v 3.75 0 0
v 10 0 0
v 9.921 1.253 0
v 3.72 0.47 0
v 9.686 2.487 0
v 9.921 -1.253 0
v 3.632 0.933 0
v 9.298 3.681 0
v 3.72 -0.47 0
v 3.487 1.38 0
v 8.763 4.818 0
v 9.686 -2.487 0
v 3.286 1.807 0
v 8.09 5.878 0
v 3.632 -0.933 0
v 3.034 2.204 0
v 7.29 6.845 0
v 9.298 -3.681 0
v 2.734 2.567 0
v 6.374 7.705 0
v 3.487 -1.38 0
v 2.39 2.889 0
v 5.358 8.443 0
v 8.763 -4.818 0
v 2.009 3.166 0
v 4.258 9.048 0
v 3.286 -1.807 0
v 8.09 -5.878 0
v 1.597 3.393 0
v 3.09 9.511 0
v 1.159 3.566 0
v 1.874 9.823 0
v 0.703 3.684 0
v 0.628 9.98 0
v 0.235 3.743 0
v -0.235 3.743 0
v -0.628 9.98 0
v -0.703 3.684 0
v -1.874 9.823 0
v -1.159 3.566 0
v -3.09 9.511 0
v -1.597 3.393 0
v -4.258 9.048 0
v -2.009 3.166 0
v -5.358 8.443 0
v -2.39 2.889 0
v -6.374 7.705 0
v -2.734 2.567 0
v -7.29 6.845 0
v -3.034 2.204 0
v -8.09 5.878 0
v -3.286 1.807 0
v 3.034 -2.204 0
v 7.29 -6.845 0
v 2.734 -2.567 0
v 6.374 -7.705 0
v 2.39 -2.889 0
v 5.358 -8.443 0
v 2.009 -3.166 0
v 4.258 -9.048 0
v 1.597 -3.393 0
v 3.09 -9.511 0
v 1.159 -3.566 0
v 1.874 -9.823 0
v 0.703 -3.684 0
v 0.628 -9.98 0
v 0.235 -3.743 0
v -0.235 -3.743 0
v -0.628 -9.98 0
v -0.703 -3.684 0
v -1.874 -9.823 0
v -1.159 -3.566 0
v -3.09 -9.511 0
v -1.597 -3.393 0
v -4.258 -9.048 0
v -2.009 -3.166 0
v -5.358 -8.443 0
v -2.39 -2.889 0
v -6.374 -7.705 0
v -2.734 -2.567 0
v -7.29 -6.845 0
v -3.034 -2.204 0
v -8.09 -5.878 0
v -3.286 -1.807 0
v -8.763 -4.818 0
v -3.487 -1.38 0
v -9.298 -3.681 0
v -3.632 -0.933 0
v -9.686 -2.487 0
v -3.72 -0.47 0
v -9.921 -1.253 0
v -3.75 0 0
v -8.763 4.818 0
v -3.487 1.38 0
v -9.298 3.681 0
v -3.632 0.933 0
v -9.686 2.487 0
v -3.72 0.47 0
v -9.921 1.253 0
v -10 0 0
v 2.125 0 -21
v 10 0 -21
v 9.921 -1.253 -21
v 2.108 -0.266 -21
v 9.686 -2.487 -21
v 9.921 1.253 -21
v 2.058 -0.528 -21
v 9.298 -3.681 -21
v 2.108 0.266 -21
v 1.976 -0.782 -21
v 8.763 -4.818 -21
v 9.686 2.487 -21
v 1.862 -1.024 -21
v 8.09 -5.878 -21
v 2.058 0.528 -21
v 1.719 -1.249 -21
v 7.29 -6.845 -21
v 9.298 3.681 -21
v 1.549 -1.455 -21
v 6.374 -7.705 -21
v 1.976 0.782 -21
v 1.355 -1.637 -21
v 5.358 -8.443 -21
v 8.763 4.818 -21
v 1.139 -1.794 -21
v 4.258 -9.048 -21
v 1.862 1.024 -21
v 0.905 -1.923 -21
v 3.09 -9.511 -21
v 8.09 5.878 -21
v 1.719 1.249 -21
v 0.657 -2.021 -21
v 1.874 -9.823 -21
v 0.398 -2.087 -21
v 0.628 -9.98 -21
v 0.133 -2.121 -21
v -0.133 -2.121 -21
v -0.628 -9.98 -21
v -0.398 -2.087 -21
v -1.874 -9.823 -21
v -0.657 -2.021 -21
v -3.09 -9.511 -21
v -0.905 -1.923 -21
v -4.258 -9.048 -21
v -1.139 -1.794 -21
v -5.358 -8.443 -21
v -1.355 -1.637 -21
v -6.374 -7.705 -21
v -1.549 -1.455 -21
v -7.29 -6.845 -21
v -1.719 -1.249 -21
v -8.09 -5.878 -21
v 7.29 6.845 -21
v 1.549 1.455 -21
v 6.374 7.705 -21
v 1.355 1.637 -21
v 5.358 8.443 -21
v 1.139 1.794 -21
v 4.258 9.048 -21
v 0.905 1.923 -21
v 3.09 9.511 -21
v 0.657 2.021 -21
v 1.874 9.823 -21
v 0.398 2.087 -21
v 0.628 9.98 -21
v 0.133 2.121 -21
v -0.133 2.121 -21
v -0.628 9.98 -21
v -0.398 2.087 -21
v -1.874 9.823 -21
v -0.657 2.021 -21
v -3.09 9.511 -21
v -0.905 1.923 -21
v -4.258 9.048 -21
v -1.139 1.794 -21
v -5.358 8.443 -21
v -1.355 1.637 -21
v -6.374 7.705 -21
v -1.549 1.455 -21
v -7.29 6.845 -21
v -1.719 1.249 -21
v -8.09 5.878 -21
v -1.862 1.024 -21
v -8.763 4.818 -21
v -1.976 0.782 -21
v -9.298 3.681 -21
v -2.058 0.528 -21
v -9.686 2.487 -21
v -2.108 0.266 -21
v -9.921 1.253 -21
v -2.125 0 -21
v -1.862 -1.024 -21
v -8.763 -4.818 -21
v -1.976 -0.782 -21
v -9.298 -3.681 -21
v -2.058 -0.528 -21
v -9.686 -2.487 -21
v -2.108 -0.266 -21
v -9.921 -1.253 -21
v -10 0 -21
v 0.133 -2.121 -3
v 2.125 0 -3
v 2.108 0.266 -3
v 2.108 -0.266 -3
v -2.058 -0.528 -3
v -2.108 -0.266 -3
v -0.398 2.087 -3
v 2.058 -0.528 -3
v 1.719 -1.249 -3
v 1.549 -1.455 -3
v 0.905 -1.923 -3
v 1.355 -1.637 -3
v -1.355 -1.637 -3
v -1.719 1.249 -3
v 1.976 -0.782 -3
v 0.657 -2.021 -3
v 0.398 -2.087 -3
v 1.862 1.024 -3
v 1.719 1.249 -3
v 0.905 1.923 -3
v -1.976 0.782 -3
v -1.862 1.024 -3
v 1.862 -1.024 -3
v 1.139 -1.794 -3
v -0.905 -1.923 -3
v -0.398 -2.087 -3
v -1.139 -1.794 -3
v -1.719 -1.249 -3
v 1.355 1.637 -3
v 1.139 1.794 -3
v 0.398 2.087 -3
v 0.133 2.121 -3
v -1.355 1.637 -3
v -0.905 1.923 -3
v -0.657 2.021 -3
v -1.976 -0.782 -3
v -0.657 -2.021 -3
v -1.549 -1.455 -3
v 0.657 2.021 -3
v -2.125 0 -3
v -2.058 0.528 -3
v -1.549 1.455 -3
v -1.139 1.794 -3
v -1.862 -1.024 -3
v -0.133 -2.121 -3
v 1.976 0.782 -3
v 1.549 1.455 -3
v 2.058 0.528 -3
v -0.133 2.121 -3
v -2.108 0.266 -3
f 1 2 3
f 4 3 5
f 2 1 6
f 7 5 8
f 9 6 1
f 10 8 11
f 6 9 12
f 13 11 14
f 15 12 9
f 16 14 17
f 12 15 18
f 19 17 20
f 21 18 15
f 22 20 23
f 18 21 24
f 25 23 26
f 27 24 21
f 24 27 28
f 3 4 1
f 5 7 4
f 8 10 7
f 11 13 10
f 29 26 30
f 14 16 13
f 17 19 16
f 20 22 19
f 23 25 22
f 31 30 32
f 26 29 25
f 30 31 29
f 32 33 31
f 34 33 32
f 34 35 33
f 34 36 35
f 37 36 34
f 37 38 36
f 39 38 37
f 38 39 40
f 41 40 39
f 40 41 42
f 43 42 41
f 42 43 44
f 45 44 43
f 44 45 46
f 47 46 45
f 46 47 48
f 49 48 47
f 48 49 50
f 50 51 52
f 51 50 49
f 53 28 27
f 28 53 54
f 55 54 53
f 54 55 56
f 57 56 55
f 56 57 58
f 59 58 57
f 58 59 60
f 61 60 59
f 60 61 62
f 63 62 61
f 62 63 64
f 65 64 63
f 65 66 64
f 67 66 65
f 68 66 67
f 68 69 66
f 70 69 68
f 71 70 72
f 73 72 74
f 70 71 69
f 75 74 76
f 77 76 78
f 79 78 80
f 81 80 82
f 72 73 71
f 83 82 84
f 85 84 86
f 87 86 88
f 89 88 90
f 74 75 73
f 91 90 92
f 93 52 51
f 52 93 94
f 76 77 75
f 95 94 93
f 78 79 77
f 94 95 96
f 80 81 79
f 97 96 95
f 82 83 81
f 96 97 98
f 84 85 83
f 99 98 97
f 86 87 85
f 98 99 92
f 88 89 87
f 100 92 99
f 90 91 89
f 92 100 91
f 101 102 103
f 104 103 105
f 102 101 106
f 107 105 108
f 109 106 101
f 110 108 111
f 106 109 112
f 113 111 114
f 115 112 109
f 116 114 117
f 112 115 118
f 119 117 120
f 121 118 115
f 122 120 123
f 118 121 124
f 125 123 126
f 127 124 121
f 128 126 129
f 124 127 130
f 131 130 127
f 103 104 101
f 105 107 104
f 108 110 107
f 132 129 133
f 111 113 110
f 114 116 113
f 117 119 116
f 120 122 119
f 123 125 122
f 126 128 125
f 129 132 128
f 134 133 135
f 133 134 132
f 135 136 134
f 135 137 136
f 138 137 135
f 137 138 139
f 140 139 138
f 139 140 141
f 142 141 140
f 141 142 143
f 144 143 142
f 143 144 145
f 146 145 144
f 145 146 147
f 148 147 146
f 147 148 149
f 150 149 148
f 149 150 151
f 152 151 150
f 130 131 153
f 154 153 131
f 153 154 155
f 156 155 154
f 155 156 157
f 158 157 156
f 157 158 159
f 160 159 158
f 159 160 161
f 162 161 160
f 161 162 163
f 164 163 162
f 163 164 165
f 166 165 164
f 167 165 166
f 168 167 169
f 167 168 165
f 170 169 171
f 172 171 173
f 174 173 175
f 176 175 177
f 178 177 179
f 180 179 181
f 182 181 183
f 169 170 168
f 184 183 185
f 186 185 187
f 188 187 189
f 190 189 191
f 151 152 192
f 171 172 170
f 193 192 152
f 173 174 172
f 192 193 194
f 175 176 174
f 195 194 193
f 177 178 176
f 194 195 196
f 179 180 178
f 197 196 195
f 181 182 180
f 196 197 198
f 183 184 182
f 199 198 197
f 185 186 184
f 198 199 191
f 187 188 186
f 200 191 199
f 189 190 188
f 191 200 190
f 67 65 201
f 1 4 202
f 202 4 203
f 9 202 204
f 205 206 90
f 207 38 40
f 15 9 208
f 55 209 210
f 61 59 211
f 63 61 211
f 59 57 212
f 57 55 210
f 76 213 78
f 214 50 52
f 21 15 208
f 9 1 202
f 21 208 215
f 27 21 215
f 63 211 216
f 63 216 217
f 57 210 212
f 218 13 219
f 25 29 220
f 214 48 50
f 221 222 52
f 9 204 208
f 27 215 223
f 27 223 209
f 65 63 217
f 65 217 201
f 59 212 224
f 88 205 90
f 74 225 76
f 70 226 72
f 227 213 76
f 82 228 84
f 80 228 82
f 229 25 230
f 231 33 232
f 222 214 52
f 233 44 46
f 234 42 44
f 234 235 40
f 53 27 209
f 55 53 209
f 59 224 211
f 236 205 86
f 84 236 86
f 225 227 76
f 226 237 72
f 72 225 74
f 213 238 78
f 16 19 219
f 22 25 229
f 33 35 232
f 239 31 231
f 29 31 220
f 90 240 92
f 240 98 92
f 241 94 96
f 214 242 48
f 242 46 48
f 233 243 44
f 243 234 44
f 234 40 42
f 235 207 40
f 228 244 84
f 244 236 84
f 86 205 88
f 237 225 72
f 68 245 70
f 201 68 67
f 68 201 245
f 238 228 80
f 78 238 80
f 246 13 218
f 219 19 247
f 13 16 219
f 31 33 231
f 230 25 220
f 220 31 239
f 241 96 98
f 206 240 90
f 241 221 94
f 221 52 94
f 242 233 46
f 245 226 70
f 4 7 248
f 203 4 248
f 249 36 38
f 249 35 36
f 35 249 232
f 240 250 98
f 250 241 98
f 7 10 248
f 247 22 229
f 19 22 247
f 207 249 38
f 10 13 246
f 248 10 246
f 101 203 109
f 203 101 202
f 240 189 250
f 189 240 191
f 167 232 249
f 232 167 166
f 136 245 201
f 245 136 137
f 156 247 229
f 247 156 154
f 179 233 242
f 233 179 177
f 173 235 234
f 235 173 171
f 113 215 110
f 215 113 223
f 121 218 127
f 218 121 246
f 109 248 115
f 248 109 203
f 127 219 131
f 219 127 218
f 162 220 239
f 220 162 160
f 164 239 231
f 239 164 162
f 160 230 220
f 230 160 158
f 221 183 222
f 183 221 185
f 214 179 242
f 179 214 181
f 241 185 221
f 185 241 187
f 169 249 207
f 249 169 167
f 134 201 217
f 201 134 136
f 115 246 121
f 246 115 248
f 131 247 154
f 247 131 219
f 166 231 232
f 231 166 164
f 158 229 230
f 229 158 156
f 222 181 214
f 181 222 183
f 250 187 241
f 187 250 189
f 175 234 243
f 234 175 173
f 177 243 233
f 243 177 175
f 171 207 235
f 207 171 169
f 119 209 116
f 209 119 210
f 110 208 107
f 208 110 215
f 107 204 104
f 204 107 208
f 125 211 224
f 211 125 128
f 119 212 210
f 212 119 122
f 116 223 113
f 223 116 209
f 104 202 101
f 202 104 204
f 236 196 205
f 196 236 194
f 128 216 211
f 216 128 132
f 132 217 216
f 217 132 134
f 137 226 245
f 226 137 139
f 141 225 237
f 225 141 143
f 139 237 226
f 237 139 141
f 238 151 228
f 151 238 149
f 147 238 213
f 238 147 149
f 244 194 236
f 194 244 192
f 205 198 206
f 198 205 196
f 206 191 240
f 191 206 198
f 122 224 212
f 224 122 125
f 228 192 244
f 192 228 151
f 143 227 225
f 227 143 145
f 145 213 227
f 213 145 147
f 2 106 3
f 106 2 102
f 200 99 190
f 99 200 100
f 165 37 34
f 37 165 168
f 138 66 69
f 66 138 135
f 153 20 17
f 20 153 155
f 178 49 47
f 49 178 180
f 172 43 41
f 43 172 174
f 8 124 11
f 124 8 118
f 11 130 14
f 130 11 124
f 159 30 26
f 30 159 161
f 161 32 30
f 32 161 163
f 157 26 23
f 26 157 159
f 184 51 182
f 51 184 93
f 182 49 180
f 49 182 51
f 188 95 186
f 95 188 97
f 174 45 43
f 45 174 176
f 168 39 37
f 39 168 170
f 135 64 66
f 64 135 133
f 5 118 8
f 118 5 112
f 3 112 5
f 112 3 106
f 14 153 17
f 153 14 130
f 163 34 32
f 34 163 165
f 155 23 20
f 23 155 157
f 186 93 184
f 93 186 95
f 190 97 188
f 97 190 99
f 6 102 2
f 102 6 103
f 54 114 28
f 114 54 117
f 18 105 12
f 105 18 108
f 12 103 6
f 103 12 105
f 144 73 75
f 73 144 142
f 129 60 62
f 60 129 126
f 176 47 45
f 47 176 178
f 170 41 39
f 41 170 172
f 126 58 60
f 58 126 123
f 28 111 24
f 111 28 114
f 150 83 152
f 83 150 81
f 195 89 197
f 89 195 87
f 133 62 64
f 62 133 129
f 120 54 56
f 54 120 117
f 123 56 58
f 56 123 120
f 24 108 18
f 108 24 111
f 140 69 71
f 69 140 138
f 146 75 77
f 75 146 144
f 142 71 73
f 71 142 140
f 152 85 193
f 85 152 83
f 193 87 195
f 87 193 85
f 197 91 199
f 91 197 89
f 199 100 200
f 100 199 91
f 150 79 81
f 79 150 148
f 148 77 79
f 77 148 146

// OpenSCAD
$fn = 50;


difference() {
	union() {
		translate(v = [0, 0, -21.0000000000]) {
			cylinder(h = 21, r = 10.0000000000);
		}
	}
	union() {
		translate(v = [0, 0, 0]) {
			rotate(a = [0, 0, 0]) {
				difference() {
					union() {
						#translate(v = [0, 0, -21.0000000000]) {
							cylinder(h = 21, r = 2.0000000000);
						}
						#translate(v = [0, 0, -3]) {
							cylinder(h = 3, r1 = 2.1250000000, r2 = 3.7500000000);
						}
						#translate(v = [0, 0, -21.0000000000]) {
							cylinder(h = 21, r = 2.1250000000);
						}
						#translate(v = [0, 0, -21.0000000000]) {
							cylinder(h = 21, r = 2.0000000000);
						}
					}
					union();
				}
			}
		}
	}
}
